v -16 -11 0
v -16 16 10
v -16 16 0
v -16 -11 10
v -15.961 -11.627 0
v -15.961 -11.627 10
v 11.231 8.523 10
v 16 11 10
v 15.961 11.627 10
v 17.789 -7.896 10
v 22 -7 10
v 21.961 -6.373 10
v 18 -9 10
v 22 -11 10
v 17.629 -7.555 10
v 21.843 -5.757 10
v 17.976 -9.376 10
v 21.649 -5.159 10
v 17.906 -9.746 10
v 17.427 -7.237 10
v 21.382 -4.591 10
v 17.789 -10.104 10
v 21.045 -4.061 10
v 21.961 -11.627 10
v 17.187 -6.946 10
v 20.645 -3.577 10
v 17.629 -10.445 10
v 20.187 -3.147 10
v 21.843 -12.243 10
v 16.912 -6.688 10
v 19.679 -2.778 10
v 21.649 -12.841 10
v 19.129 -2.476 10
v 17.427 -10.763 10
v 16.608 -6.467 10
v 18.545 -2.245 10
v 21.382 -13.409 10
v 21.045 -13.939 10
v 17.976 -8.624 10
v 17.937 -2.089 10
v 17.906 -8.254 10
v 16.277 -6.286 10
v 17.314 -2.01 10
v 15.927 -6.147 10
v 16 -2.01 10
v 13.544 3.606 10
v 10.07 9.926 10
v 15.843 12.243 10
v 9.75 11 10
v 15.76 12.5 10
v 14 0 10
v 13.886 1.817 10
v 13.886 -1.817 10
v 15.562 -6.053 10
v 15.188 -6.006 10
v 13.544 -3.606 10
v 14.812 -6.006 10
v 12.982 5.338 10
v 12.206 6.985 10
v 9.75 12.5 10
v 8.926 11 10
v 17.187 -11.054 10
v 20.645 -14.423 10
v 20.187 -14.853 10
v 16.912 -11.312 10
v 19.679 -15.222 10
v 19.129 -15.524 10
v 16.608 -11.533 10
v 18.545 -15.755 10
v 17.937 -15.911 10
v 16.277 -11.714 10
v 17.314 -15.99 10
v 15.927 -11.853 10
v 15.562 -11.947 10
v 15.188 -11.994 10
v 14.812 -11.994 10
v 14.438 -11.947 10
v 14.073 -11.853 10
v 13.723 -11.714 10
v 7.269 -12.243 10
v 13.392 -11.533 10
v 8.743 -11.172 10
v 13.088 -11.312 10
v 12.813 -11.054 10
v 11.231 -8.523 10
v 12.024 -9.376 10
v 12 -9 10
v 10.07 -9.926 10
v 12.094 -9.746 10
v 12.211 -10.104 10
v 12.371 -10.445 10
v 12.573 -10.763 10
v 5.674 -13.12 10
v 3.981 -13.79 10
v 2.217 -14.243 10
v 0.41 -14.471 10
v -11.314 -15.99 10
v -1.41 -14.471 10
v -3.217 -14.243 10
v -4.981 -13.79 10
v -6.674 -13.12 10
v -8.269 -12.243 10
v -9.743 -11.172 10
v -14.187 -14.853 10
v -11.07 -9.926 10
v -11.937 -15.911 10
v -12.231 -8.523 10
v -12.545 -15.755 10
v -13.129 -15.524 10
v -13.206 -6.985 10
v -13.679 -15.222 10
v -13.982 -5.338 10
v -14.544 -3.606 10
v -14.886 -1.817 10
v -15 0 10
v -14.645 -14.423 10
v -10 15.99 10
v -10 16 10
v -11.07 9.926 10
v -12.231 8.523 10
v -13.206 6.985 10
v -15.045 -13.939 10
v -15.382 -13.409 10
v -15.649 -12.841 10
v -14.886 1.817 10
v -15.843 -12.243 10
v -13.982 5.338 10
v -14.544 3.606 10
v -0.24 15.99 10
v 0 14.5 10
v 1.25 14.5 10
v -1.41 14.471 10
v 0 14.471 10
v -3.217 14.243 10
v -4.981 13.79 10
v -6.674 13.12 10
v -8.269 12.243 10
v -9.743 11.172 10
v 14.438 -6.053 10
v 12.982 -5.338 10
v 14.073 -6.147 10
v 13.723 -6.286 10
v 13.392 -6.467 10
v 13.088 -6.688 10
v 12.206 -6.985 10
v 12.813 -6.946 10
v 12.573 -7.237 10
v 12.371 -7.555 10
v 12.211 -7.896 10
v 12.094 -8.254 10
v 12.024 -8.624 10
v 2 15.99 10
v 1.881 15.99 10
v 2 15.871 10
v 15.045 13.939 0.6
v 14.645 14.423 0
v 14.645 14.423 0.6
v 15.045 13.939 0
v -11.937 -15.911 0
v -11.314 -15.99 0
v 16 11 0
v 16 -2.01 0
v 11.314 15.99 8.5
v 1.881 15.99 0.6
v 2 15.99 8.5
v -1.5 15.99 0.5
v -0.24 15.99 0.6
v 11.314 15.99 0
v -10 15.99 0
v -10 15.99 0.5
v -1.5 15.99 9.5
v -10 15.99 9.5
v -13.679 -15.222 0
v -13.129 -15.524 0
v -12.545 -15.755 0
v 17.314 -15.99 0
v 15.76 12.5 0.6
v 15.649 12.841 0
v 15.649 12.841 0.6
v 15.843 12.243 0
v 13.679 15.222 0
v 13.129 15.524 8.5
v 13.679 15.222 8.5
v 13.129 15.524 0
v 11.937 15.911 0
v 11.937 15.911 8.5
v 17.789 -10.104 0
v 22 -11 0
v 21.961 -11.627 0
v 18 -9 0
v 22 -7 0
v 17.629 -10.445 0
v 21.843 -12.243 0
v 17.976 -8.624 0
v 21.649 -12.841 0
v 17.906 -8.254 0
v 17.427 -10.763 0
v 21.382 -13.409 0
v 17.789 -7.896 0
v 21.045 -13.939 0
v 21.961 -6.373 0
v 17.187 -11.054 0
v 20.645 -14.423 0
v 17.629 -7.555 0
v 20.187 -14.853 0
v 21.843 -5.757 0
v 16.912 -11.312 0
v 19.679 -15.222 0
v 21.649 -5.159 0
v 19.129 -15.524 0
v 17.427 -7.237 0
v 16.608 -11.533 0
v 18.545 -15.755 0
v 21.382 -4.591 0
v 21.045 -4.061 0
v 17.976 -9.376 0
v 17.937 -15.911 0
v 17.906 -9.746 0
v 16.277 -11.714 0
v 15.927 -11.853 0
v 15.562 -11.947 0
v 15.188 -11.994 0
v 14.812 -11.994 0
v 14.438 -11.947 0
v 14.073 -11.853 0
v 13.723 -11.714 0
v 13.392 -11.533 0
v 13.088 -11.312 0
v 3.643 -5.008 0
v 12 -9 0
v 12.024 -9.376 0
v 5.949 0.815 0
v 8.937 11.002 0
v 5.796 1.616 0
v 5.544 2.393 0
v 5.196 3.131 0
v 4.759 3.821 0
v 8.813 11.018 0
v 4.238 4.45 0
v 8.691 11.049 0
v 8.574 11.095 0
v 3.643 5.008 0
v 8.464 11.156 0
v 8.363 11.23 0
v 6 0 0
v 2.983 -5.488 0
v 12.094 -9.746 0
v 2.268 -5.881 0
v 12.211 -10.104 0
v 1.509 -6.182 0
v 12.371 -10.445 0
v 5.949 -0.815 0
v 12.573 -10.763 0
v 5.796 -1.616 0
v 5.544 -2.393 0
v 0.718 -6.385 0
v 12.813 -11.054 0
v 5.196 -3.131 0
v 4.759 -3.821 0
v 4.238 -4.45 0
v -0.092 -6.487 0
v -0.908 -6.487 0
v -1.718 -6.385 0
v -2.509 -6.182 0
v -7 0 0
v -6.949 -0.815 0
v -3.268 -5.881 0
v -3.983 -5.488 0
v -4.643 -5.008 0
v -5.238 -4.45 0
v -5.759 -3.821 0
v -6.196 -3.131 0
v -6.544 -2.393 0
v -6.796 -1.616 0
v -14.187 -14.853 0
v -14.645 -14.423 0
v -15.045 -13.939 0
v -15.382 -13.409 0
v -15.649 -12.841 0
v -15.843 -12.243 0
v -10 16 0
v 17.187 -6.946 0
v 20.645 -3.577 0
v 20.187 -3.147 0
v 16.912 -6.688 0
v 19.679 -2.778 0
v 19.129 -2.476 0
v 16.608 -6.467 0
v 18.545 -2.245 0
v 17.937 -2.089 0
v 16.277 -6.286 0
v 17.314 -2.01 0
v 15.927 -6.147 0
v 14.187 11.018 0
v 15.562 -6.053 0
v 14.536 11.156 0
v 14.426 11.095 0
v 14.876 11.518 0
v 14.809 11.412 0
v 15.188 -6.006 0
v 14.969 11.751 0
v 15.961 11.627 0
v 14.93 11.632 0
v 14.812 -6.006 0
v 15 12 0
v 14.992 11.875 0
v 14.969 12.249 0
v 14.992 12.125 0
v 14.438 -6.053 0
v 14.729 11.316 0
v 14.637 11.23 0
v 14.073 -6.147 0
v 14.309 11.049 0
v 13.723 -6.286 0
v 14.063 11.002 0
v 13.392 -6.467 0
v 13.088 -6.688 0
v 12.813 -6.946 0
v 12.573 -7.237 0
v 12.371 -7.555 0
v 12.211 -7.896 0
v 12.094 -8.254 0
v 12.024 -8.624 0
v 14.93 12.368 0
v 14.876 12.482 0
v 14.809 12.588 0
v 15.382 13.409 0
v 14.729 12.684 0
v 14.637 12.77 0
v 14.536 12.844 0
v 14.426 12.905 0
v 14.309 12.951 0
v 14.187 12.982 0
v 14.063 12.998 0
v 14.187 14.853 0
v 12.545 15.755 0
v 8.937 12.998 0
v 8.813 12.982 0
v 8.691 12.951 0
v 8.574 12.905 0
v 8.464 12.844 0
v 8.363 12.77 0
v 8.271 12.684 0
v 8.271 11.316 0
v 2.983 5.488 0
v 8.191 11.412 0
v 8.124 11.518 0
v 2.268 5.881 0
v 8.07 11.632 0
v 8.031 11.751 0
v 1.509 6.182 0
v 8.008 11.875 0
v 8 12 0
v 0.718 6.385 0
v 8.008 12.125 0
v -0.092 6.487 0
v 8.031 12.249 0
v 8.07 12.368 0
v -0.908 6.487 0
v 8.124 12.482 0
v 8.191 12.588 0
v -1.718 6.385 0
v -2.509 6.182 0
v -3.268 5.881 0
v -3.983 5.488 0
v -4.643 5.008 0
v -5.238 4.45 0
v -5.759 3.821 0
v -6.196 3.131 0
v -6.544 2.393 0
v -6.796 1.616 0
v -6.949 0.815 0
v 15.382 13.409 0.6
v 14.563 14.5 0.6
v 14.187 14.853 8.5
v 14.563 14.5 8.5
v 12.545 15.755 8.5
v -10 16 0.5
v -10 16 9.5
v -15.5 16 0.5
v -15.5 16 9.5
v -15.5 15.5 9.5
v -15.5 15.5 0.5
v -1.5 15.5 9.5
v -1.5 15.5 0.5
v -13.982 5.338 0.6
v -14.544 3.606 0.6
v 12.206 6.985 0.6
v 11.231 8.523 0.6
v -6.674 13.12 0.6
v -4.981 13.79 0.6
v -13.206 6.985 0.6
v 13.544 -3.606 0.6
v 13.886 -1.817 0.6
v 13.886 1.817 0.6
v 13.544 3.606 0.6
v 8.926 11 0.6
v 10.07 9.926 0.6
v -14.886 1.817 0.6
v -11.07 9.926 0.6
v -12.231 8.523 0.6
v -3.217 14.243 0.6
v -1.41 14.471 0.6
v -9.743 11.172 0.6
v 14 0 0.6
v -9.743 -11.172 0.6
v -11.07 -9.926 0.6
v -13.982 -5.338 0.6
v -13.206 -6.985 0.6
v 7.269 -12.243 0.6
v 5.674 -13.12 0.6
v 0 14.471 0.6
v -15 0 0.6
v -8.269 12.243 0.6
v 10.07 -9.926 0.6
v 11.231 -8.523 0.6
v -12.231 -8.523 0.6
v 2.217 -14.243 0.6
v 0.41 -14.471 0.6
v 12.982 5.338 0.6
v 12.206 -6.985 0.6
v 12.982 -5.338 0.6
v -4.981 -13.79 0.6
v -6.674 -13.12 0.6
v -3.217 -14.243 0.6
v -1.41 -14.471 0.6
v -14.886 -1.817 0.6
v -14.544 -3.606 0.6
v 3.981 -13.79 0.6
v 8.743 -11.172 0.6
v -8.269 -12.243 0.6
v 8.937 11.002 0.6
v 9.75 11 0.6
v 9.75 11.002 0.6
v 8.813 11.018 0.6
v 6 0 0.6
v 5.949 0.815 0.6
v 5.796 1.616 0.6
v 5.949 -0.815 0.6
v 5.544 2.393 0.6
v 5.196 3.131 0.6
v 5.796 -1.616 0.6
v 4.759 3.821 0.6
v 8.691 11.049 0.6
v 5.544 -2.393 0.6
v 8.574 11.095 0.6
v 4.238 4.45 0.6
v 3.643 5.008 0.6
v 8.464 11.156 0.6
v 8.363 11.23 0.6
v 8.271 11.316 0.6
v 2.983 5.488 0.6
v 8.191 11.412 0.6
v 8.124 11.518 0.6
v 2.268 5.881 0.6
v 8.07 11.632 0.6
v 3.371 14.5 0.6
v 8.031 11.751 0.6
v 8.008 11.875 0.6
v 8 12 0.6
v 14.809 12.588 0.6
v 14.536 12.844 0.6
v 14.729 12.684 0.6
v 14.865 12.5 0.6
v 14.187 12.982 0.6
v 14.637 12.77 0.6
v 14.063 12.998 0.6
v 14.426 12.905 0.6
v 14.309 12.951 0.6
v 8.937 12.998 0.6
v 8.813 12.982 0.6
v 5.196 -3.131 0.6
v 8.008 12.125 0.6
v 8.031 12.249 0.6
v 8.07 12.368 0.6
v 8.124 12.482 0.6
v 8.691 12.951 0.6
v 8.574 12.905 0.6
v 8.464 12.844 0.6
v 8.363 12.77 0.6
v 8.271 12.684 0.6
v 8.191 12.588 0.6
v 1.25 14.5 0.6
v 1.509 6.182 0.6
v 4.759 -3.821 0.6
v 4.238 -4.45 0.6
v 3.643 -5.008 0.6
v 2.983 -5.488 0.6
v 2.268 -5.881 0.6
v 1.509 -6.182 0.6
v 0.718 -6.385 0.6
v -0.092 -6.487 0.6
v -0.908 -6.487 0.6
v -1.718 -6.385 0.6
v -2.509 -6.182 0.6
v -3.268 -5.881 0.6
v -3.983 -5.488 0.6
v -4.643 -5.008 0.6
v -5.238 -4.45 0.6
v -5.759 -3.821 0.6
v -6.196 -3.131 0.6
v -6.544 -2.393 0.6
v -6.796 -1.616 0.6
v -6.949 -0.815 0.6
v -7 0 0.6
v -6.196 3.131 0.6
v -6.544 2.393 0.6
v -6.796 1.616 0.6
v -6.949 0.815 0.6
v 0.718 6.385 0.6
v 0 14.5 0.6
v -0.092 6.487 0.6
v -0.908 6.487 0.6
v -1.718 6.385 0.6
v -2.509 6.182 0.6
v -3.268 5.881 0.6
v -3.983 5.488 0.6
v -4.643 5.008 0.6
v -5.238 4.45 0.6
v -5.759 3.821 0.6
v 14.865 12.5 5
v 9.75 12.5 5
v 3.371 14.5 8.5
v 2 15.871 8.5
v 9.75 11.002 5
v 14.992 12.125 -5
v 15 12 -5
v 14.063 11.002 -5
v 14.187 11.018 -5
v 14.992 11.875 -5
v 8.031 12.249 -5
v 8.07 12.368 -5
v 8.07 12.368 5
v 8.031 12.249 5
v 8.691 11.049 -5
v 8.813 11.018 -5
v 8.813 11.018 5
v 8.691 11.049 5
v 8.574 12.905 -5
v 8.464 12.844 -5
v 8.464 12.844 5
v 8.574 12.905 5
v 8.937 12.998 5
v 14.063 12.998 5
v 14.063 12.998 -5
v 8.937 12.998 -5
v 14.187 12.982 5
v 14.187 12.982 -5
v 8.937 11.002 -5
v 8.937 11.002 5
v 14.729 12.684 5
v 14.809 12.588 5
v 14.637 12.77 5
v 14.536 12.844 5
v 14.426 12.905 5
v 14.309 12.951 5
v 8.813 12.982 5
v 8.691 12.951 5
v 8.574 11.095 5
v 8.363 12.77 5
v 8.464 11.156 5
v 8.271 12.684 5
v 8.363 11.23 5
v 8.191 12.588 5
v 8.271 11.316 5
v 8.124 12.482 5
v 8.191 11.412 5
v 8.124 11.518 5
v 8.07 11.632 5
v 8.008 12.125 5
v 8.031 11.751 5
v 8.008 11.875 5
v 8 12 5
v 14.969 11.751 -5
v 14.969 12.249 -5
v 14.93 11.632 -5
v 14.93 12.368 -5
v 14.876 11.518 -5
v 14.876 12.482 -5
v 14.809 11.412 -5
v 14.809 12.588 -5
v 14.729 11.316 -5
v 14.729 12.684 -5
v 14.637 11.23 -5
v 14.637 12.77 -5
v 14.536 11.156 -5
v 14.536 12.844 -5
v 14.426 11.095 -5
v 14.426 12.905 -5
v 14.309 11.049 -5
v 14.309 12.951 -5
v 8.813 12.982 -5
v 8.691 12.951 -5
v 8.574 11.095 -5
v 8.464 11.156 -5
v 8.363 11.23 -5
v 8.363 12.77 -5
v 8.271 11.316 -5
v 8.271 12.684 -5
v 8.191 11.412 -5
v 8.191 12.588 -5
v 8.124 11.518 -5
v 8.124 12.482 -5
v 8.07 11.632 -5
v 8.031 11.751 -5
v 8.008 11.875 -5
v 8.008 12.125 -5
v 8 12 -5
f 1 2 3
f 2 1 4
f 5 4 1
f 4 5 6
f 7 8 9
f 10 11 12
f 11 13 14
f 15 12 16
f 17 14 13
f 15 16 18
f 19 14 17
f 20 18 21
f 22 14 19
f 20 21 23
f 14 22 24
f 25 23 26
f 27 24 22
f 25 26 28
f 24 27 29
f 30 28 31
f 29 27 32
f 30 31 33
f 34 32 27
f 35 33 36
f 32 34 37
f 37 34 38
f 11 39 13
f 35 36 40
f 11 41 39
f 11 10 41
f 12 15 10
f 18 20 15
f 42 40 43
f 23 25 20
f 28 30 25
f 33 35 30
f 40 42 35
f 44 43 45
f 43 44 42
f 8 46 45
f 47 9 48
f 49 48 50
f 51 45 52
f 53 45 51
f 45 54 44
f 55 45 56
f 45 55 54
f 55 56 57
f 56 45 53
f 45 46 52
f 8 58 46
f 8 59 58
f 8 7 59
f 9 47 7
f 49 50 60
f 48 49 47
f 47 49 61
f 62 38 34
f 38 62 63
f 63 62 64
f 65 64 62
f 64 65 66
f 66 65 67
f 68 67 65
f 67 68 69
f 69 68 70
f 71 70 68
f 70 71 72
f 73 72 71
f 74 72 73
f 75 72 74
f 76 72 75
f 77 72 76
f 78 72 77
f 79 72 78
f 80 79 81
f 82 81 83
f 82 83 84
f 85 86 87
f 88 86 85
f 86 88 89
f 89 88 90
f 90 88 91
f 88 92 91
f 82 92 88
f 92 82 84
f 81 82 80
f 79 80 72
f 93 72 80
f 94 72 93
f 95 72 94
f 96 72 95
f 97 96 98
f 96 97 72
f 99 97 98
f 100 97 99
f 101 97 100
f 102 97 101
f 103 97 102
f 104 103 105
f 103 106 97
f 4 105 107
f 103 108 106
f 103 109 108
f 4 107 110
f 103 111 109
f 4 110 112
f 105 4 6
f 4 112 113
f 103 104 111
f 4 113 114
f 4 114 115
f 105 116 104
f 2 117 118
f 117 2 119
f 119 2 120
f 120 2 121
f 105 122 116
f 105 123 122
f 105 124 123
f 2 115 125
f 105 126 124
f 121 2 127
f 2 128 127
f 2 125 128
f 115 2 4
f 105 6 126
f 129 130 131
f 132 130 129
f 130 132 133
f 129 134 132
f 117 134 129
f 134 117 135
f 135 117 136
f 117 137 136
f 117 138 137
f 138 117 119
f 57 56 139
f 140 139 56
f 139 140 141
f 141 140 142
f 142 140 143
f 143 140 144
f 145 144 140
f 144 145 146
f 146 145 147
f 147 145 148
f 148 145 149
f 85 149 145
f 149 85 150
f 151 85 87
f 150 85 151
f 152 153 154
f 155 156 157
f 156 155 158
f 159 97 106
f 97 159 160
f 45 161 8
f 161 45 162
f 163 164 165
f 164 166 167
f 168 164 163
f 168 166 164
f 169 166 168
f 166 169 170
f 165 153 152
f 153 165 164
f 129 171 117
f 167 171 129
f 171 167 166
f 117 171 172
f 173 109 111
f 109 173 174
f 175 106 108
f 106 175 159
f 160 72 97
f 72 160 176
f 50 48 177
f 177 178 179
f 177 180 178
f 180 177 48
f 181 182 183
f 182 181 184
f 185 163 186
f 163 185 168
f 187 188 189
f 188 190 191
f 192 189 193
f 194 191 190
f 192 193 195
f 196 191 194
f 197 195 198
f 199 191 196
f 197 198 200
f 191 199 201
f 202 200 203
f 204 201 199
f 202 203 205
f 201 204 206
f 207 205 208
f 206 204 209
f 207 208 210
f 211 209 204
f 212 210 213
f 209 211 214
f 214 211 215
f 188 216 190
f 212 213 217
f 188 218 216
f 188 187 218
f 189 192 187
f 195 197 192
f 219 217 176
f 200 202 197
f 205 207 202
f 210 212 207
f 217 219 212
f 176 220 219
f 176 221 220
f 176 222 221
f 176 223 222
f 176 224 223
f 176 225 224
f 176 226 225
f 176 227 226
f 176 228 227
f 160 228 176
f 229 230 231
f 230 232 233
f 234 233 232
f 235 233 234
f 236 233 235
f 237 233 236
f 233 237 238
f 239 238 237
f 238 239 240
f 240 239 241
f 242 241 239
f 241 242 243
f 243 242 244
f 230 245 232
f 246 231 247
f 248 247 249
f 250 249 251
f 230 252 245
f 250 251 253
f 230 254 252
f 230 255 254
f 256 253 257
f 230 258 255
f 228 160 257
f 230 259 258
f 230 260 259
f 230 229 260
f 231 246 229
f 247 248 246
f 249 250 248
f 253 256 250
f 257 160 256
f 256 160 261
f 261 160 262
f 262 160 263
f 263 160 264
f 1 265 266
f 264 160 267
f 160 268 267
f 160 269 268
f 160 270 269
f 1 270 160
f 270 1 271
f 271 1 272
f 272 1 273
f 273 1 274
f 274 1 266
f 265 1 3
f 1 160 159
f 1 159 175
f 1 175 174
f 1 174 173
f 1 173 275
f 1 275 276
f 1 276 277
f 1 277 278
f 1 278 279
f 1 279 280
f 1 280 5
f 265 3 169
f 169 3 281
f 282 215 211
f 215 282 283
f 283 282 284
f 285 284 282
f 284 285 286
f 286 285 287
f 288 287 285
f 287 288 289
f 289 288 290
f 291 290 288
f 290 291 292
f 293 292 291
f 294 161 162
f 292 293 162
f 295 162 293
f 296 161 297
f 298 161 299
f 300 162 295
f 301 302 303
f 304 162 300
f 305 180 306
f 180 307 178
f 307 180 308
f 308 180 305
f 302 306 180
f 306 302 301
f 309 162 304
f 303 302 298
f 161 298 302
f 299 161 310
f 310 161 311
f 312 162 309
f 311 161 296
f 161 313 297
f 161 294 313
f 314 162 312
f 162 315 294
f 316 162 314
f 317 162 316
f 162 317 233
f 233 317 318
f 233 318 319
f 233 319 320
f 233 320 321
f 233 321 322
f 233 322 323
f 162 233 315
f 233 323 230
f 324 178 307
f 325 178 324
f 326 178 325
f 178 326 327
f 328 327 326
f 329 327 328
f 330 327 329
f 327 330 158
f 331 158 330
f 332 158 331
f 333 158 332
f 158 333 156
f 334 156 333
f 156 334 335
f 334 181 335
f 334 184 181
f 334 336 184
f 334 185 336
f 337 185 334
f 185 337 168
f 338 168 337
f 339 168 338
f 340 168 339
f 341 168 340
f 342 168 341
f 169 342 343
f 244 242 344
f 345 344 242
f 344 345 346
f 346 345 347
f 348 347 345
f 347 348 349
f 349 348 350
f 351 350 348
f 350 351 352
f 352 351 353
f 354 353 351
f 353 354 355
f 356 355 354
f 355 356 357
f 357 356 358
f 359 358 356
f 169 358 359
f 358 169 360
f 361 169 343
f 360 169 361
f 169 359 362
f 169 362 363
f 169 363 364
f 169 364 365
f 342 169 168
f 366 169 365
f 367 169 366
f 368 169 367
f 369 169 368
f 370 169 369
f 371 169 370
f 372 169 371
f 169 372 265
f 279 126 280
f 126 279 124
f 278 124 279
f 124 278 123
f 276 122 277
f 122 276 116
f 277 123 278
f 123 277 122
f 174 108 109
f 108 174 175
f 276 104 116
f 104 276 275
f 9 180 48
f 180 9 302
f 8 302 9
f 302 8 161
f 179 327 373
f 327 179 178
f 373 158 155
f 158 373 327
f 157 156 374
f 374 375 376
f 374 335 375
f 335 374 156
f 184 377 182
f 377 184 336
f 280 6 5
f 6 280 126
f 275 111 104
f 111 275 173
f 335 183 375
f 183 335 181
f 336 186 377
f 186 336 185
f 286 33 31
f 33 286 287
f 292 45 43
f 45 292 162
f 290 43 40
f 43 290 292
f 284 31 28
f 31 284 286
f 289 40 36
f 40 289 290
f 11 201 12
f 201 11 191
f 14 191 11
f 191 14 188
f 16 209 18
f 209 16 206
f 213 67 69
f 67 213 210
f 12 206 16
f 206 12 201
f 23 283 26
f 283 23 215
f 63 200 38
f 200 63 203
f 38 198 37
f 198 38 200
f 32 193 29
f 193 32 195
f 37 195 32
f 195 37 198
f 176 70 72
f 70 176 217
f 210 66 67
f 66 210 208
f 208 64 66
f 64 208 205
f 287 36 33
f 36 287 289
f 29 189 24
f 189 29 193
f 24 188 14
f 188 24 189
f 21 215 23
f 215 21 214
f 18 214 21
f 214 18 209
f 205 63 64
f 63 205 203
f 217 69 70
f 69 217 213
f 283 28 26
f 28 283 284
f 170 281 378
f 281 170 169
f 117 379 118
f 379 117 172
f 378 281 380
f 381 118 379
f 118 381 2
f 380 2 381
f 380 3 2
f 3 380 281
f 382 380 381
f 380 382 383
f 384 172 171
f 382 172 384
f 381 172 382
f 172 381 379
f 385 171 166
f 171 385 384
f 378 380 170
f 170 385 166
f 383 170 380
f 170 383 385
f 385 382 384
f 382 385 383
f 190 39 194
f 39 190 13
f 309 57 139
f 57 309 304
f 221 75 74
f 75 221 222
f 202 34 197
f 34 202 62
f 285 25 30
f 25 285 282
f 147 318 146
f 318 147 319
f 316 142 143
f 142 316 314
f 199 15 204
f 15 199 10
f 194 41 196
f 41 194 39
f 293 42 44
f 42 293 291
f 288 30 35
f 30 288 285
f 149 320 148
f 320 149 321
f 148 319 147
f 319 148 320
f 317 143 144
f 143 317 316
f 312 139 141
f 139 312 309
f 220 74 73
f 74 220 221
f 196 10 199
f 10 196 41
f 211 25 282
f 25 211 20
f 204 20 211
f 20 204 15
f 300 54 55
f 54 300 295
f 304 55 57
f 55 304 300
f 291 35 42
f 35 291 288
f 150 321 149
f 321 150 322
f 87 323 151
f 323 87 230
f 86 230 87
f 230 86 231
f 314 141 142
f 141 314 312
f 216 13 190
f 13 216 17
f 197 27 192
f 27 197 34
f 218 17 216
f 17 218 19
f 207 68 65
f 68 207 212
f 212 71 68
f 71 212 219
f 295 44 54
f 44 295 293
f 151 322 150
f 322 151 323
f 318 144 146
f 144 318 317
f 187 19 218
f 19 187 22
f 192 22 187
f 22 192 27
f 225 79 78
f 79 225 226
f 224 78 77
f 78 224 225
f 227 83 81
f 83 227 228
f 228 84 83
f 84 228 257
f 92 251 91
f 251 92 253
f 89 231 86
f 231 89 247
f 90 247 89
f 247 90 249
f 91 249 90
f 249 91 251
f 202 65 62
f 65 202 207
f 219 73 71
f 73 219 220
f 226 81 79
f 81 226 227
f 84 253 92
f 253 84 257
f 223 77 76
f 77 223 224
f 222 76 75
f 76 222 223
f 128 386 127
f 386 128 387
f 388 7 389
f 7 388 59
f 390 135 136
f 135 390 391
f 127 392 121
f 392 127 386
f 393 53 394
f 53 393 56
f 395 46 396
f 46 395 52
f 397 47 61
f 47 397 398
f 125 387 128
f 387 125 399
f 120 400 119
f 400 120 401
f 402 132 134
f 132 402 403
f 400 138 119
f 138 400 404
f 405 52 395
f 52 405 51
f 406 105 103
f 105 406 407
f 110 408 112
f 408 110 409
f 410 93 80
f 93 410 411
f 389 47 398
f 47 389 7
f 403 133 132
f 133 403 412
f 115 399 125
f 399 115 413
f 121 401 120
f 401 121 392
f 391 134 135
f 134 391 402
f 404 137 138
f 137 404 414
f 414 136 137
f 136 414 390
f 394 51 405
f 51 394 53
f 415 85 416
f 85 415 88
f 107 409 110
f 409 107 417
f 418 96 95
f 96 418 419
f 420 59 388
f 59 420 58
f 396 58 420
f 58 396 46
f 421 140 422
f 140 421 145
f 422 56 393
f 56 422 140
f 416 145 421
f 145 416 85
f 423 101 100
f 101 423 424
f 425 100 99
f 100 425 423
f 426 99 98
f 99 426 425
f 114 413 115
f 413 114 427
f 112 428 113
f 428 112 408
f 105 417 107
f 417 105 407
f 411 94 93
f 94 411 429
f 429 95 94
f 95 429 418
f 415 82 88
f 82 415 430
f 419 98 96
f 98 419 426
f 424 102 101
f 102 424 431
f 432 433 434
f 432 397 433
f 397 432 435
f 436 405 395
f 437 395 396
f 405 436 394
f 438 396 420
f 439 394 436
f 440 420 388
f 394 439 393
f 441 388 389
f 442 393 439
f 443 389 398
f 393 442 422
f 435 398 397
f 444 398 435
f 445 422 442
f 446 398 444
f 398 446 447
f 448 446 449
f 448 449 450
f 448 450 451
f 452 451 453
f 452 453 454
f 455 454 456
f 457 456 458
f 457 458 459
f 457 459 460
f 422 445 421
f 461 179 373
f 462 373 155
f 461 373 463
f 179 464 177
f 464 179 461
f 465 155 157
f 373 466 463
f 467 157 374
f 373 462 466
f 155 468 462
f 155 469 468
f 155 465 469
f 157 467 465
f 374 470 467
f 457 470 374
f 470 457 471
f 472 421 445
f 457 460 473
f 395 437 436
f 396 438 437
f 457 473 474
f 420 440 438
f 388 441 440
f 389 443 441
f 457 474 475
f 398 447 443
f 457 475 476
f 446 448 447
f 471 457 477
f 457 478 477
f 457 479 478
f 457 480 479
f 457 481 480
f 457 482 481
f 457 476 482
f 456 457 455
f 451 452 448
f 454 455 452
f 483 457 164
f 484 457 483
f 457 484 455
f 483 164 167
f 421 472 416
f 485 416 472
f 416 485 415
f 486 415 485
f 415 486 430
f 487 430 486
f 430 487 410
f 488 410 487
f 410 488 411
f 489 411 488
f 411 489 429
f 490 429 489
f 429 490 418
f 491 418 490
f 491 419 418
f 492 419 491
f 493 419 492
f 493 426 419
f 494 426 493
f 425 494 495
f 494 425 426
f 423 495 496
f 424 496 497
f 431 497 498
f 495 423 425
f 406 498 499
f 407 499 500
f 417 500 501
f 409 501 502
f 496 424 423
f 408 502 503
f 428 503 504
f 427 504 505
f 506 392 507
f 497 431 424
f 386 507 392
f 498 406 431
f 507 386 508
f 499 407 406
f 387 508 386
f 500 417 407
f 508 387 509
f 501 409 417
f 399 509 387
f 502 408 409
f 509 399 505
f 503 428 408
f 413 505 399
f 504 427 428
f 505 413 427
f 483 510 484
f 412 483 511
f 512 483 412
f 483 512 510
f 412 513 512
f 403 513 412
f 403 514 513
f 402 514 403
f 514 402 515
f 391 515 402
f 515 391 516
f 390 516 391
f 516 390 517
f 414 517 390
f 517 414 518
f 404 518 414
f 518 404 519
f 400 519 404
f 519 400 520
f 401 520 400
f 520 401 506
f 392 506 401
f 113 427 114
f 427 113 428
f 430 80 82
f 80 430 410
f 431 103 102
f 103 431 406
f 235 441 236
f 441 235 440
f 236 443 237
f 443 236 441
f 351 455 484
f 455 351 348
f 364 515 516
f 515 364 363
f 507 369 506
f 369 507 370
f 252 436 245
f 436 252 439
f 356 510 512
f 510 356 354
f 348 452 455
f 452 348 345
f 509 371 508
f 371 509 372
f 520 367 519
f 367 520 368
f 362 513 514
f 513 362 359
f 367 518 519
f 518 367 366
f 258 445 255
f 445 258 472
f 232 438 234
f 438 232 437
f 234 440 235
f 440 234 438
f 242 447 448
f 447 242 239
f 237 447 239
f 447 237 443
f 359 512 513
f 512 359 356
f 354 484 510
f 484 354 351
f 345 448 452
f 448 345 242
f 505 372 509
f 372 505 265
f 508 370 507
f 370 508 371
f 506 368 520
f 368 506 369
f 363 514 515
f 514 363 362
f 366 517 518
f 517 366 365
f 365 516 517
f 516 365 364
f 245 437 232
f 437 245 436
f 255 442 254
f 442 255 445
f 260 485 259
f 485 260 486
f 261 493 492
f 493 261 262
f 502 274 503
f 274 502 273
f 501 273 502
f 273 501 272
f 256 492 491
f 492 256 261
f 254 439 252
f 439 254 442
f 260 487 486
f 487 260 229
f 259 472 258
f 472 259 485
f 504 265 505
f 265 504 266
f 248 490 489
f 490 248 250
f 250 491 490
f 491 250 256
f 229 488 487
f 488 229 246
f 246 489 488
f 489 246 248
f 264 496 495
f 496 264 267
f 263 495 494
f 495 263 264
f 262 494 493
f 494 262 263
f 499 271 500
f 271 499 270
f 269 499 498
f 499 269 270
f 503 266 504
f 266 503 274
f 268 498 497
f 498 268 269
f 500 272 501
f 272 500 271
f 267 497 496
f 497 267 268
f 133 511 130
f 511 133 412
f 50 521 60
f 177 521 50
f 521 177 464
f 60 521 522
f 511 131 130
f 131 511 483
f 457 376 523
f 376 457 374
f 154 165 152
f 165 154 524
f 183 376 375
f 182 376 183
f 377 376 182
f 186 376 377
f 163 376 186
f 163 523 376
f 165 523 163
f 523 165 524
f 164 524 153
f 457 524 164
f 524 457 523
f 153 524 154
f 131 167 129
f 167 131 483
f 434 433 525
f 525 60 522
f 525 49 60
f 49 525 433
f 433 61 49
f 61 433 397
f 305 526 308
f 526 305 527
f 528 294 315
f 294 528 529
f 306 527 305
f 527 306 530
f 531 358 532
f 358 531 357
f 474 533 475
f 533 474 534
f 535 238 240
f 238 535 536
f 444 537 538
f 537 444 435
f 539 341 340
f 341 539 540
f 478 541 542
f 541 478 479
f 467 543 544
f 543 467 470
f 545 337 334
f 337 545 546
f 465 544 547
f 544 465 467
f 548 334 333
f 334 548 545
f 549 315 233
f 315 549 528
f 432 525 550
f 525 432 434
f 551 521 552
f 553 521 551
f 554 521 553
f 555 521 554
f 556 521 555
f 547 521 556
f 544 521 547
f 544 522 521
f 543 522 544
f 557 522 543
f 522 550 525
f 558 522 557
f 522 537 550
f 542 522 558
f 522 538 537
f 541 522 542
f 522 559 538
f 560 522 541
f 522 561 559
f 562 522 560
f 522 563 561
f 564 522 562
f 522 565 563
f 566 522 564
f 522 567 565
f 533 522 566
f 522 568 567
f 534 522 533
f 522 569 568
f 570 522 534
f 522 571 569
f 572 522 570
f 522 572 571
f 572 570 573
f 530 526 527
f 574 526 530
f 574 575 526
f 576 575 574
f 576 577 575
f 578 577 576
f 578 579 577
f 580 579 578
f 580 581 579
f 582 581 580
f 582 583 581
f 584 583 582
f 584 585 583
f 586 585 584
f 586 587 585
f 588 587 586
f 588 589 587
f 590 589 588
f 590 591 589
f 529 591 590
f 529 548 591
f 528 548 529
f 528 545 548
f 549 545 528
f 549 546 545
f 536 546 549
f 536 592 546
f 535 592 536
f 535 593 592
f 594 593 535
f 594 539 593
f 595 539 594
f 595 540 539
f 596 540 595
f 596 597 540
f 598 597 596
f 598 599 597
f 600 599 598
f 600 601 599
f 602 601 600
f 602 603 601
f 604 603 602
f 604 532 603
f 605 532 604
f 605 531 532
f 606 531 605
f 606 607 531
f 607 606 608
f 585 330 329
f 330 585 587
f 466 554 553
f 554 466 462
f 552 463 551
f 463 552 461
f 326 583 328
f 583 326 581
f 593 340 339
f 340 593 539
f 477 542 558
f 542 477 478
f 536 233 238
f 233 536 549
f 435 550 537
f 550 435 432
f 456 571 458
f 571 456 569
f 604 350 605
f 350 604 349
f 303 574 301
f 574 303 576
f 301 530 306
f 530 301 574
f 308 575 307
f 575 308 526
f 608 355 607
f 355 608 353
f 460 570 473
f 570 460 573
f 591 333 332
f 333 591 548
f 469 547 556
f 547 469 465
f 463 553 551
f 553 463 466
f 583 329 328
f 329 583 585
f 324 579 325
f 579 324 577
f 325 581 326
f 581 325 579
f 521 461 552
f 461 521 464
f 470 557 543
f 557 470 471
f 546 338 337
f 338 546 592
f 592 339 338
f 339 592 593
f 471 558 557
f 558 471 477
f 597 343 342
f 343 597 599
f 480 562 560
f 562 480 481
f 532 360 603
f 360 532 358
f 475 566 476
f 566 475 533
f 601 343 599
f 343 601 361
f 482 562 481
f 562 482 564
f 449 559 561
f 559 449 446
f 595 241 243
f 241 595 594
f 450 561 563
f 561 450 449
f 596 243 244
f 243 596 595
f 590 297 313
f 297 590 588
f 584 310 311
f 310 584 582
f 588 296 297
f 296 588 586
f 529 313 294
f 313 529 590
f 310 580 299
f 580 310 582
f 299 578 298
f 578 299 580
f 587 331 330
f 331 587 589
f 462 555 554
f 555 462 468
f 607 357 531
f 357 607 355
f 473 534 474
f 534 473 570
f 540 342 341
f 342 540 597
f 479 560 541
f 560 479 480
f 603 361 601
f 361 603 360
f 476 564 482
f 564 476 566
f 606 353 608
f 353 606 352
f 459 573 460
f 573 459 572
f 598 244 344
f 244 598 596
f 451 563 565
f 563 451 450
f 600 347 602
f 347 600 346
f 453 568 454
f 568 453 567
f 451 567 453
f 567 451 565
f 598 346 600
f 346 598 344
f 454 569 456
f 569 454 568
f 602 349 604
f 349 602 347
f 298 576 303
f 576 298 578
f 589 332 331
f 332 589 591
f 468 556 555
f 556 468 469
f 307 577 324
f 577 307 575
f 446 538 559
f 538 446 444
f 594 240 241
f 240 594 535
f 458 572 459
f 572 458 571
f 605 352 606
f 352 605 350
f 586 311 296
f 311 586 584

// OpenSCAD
$fn = 50;


union() {
	difference() {
		union() {
			hull() {
				translate(v = [-11.0000000000, 11.0000000000, 0]) {
					cylinder(h = 10, r = 5);
				}
				translate(v = [11.0000000000, 11.0000000000, 0]) {
					cylinder(h = 10, r = 5);
				}
				translate(v = [-11.0000000000, -11.0000000000, 0]) {
					cylinder(h = 10, r = 5);
				}
				translate(v = [11.0000000000, -11.0000000000, 0]) {
					cylinder(h = 10, r = 5);
				}
			}
			translate(v = [7.5000000000, -9.0000000000, 0]) {
				hull() {
					translate(v = [-9.5000000000, 2.0000000000, 0]) {
						cylinder(h = 10, r = 5);
					}
					translate(v = [9.5000000000, 2.0000000000, 0]) {
						cylinder(h = 10, r = 5);
					}
					translate(v = [-9.5000000000, -2.0000000000, 0]) {
						cylinder(h = 10, r = 5);
					}
					translate(v = [9.5000000000, -2.0000000000, 0]) {
						cylinder(h = 10, r = 5);
					}
				}
			}
			translate(v = [-16.0000000000, 10.0000000000, 0]) {
				cube(size = [6, 6, 10]);
			}
		}
		union() {
			translate(v = [-15.5000000000, 15.5000000000, 0.5000000000]) {
				cube(size = [14, 0.5000000000, 9.0000000000]);
			}
			translate(v = [15.0000000000, -9.0000000000, -100.0000000000]) {
				cylinder(h = 200, r = 3.0000000000);
			}
			translate(v = [-0.5000000000, 0.0000000000, 0.6000000000]) {
				cylinder(h = 12.4000000000, r = 14.5000000000);
			}
			translate(v = [-0.5000000000, 0.0000000000, -5.0000000000]) {
				cylinder(h = 10, r = 6.5000000000);
			}
			translate(v = [0.0000000000, 12.5000000000, 0.6000000000]) {
				cube(size = [16.0000000000, 2, 12.4000000000]);
			}
			translate(v = [2.0000000000, 12.5000000000, 8.5000000000]) {
				cube(size = [14.0000000000, 5, 1.5000000000]);
			}
			translate(v = [-3.0000000000, 18.7500000000, 0.6000000000]) {
				rotate(a = [0, 0, -45]) {
					cube(size = [10, 1.5000000000, 12.4000000000]);
				}
			}
			translate(v = [2.2500000000, 11.0000000000, 0.6000000000]) {
				cube(size = [7.5000000000, 2, 9.4000000000]);
			}
		}
	}
	union() {
		translate(v = [11.5000000000, 12, -5.0000000000]) {
			rotate(a = [0, 0, 0]) {
				difference() {
					union() {
						hull() {
							translate(v = [2.5000000000, 0, 0]) {
								cylinder(h = 10, r = 1.0000000000, r1 = 1.0000000000, r2 = 1.0000000000);
							}
							translate(v = [-2.5000000000, 0, 0]) {
								cylinder(h = 10, r = 1.0000000000, r1 = 1.0000000000, r2 = 1.0000000000);
							}
						}
					}
					union();
				}
			}
		}
	}
}
